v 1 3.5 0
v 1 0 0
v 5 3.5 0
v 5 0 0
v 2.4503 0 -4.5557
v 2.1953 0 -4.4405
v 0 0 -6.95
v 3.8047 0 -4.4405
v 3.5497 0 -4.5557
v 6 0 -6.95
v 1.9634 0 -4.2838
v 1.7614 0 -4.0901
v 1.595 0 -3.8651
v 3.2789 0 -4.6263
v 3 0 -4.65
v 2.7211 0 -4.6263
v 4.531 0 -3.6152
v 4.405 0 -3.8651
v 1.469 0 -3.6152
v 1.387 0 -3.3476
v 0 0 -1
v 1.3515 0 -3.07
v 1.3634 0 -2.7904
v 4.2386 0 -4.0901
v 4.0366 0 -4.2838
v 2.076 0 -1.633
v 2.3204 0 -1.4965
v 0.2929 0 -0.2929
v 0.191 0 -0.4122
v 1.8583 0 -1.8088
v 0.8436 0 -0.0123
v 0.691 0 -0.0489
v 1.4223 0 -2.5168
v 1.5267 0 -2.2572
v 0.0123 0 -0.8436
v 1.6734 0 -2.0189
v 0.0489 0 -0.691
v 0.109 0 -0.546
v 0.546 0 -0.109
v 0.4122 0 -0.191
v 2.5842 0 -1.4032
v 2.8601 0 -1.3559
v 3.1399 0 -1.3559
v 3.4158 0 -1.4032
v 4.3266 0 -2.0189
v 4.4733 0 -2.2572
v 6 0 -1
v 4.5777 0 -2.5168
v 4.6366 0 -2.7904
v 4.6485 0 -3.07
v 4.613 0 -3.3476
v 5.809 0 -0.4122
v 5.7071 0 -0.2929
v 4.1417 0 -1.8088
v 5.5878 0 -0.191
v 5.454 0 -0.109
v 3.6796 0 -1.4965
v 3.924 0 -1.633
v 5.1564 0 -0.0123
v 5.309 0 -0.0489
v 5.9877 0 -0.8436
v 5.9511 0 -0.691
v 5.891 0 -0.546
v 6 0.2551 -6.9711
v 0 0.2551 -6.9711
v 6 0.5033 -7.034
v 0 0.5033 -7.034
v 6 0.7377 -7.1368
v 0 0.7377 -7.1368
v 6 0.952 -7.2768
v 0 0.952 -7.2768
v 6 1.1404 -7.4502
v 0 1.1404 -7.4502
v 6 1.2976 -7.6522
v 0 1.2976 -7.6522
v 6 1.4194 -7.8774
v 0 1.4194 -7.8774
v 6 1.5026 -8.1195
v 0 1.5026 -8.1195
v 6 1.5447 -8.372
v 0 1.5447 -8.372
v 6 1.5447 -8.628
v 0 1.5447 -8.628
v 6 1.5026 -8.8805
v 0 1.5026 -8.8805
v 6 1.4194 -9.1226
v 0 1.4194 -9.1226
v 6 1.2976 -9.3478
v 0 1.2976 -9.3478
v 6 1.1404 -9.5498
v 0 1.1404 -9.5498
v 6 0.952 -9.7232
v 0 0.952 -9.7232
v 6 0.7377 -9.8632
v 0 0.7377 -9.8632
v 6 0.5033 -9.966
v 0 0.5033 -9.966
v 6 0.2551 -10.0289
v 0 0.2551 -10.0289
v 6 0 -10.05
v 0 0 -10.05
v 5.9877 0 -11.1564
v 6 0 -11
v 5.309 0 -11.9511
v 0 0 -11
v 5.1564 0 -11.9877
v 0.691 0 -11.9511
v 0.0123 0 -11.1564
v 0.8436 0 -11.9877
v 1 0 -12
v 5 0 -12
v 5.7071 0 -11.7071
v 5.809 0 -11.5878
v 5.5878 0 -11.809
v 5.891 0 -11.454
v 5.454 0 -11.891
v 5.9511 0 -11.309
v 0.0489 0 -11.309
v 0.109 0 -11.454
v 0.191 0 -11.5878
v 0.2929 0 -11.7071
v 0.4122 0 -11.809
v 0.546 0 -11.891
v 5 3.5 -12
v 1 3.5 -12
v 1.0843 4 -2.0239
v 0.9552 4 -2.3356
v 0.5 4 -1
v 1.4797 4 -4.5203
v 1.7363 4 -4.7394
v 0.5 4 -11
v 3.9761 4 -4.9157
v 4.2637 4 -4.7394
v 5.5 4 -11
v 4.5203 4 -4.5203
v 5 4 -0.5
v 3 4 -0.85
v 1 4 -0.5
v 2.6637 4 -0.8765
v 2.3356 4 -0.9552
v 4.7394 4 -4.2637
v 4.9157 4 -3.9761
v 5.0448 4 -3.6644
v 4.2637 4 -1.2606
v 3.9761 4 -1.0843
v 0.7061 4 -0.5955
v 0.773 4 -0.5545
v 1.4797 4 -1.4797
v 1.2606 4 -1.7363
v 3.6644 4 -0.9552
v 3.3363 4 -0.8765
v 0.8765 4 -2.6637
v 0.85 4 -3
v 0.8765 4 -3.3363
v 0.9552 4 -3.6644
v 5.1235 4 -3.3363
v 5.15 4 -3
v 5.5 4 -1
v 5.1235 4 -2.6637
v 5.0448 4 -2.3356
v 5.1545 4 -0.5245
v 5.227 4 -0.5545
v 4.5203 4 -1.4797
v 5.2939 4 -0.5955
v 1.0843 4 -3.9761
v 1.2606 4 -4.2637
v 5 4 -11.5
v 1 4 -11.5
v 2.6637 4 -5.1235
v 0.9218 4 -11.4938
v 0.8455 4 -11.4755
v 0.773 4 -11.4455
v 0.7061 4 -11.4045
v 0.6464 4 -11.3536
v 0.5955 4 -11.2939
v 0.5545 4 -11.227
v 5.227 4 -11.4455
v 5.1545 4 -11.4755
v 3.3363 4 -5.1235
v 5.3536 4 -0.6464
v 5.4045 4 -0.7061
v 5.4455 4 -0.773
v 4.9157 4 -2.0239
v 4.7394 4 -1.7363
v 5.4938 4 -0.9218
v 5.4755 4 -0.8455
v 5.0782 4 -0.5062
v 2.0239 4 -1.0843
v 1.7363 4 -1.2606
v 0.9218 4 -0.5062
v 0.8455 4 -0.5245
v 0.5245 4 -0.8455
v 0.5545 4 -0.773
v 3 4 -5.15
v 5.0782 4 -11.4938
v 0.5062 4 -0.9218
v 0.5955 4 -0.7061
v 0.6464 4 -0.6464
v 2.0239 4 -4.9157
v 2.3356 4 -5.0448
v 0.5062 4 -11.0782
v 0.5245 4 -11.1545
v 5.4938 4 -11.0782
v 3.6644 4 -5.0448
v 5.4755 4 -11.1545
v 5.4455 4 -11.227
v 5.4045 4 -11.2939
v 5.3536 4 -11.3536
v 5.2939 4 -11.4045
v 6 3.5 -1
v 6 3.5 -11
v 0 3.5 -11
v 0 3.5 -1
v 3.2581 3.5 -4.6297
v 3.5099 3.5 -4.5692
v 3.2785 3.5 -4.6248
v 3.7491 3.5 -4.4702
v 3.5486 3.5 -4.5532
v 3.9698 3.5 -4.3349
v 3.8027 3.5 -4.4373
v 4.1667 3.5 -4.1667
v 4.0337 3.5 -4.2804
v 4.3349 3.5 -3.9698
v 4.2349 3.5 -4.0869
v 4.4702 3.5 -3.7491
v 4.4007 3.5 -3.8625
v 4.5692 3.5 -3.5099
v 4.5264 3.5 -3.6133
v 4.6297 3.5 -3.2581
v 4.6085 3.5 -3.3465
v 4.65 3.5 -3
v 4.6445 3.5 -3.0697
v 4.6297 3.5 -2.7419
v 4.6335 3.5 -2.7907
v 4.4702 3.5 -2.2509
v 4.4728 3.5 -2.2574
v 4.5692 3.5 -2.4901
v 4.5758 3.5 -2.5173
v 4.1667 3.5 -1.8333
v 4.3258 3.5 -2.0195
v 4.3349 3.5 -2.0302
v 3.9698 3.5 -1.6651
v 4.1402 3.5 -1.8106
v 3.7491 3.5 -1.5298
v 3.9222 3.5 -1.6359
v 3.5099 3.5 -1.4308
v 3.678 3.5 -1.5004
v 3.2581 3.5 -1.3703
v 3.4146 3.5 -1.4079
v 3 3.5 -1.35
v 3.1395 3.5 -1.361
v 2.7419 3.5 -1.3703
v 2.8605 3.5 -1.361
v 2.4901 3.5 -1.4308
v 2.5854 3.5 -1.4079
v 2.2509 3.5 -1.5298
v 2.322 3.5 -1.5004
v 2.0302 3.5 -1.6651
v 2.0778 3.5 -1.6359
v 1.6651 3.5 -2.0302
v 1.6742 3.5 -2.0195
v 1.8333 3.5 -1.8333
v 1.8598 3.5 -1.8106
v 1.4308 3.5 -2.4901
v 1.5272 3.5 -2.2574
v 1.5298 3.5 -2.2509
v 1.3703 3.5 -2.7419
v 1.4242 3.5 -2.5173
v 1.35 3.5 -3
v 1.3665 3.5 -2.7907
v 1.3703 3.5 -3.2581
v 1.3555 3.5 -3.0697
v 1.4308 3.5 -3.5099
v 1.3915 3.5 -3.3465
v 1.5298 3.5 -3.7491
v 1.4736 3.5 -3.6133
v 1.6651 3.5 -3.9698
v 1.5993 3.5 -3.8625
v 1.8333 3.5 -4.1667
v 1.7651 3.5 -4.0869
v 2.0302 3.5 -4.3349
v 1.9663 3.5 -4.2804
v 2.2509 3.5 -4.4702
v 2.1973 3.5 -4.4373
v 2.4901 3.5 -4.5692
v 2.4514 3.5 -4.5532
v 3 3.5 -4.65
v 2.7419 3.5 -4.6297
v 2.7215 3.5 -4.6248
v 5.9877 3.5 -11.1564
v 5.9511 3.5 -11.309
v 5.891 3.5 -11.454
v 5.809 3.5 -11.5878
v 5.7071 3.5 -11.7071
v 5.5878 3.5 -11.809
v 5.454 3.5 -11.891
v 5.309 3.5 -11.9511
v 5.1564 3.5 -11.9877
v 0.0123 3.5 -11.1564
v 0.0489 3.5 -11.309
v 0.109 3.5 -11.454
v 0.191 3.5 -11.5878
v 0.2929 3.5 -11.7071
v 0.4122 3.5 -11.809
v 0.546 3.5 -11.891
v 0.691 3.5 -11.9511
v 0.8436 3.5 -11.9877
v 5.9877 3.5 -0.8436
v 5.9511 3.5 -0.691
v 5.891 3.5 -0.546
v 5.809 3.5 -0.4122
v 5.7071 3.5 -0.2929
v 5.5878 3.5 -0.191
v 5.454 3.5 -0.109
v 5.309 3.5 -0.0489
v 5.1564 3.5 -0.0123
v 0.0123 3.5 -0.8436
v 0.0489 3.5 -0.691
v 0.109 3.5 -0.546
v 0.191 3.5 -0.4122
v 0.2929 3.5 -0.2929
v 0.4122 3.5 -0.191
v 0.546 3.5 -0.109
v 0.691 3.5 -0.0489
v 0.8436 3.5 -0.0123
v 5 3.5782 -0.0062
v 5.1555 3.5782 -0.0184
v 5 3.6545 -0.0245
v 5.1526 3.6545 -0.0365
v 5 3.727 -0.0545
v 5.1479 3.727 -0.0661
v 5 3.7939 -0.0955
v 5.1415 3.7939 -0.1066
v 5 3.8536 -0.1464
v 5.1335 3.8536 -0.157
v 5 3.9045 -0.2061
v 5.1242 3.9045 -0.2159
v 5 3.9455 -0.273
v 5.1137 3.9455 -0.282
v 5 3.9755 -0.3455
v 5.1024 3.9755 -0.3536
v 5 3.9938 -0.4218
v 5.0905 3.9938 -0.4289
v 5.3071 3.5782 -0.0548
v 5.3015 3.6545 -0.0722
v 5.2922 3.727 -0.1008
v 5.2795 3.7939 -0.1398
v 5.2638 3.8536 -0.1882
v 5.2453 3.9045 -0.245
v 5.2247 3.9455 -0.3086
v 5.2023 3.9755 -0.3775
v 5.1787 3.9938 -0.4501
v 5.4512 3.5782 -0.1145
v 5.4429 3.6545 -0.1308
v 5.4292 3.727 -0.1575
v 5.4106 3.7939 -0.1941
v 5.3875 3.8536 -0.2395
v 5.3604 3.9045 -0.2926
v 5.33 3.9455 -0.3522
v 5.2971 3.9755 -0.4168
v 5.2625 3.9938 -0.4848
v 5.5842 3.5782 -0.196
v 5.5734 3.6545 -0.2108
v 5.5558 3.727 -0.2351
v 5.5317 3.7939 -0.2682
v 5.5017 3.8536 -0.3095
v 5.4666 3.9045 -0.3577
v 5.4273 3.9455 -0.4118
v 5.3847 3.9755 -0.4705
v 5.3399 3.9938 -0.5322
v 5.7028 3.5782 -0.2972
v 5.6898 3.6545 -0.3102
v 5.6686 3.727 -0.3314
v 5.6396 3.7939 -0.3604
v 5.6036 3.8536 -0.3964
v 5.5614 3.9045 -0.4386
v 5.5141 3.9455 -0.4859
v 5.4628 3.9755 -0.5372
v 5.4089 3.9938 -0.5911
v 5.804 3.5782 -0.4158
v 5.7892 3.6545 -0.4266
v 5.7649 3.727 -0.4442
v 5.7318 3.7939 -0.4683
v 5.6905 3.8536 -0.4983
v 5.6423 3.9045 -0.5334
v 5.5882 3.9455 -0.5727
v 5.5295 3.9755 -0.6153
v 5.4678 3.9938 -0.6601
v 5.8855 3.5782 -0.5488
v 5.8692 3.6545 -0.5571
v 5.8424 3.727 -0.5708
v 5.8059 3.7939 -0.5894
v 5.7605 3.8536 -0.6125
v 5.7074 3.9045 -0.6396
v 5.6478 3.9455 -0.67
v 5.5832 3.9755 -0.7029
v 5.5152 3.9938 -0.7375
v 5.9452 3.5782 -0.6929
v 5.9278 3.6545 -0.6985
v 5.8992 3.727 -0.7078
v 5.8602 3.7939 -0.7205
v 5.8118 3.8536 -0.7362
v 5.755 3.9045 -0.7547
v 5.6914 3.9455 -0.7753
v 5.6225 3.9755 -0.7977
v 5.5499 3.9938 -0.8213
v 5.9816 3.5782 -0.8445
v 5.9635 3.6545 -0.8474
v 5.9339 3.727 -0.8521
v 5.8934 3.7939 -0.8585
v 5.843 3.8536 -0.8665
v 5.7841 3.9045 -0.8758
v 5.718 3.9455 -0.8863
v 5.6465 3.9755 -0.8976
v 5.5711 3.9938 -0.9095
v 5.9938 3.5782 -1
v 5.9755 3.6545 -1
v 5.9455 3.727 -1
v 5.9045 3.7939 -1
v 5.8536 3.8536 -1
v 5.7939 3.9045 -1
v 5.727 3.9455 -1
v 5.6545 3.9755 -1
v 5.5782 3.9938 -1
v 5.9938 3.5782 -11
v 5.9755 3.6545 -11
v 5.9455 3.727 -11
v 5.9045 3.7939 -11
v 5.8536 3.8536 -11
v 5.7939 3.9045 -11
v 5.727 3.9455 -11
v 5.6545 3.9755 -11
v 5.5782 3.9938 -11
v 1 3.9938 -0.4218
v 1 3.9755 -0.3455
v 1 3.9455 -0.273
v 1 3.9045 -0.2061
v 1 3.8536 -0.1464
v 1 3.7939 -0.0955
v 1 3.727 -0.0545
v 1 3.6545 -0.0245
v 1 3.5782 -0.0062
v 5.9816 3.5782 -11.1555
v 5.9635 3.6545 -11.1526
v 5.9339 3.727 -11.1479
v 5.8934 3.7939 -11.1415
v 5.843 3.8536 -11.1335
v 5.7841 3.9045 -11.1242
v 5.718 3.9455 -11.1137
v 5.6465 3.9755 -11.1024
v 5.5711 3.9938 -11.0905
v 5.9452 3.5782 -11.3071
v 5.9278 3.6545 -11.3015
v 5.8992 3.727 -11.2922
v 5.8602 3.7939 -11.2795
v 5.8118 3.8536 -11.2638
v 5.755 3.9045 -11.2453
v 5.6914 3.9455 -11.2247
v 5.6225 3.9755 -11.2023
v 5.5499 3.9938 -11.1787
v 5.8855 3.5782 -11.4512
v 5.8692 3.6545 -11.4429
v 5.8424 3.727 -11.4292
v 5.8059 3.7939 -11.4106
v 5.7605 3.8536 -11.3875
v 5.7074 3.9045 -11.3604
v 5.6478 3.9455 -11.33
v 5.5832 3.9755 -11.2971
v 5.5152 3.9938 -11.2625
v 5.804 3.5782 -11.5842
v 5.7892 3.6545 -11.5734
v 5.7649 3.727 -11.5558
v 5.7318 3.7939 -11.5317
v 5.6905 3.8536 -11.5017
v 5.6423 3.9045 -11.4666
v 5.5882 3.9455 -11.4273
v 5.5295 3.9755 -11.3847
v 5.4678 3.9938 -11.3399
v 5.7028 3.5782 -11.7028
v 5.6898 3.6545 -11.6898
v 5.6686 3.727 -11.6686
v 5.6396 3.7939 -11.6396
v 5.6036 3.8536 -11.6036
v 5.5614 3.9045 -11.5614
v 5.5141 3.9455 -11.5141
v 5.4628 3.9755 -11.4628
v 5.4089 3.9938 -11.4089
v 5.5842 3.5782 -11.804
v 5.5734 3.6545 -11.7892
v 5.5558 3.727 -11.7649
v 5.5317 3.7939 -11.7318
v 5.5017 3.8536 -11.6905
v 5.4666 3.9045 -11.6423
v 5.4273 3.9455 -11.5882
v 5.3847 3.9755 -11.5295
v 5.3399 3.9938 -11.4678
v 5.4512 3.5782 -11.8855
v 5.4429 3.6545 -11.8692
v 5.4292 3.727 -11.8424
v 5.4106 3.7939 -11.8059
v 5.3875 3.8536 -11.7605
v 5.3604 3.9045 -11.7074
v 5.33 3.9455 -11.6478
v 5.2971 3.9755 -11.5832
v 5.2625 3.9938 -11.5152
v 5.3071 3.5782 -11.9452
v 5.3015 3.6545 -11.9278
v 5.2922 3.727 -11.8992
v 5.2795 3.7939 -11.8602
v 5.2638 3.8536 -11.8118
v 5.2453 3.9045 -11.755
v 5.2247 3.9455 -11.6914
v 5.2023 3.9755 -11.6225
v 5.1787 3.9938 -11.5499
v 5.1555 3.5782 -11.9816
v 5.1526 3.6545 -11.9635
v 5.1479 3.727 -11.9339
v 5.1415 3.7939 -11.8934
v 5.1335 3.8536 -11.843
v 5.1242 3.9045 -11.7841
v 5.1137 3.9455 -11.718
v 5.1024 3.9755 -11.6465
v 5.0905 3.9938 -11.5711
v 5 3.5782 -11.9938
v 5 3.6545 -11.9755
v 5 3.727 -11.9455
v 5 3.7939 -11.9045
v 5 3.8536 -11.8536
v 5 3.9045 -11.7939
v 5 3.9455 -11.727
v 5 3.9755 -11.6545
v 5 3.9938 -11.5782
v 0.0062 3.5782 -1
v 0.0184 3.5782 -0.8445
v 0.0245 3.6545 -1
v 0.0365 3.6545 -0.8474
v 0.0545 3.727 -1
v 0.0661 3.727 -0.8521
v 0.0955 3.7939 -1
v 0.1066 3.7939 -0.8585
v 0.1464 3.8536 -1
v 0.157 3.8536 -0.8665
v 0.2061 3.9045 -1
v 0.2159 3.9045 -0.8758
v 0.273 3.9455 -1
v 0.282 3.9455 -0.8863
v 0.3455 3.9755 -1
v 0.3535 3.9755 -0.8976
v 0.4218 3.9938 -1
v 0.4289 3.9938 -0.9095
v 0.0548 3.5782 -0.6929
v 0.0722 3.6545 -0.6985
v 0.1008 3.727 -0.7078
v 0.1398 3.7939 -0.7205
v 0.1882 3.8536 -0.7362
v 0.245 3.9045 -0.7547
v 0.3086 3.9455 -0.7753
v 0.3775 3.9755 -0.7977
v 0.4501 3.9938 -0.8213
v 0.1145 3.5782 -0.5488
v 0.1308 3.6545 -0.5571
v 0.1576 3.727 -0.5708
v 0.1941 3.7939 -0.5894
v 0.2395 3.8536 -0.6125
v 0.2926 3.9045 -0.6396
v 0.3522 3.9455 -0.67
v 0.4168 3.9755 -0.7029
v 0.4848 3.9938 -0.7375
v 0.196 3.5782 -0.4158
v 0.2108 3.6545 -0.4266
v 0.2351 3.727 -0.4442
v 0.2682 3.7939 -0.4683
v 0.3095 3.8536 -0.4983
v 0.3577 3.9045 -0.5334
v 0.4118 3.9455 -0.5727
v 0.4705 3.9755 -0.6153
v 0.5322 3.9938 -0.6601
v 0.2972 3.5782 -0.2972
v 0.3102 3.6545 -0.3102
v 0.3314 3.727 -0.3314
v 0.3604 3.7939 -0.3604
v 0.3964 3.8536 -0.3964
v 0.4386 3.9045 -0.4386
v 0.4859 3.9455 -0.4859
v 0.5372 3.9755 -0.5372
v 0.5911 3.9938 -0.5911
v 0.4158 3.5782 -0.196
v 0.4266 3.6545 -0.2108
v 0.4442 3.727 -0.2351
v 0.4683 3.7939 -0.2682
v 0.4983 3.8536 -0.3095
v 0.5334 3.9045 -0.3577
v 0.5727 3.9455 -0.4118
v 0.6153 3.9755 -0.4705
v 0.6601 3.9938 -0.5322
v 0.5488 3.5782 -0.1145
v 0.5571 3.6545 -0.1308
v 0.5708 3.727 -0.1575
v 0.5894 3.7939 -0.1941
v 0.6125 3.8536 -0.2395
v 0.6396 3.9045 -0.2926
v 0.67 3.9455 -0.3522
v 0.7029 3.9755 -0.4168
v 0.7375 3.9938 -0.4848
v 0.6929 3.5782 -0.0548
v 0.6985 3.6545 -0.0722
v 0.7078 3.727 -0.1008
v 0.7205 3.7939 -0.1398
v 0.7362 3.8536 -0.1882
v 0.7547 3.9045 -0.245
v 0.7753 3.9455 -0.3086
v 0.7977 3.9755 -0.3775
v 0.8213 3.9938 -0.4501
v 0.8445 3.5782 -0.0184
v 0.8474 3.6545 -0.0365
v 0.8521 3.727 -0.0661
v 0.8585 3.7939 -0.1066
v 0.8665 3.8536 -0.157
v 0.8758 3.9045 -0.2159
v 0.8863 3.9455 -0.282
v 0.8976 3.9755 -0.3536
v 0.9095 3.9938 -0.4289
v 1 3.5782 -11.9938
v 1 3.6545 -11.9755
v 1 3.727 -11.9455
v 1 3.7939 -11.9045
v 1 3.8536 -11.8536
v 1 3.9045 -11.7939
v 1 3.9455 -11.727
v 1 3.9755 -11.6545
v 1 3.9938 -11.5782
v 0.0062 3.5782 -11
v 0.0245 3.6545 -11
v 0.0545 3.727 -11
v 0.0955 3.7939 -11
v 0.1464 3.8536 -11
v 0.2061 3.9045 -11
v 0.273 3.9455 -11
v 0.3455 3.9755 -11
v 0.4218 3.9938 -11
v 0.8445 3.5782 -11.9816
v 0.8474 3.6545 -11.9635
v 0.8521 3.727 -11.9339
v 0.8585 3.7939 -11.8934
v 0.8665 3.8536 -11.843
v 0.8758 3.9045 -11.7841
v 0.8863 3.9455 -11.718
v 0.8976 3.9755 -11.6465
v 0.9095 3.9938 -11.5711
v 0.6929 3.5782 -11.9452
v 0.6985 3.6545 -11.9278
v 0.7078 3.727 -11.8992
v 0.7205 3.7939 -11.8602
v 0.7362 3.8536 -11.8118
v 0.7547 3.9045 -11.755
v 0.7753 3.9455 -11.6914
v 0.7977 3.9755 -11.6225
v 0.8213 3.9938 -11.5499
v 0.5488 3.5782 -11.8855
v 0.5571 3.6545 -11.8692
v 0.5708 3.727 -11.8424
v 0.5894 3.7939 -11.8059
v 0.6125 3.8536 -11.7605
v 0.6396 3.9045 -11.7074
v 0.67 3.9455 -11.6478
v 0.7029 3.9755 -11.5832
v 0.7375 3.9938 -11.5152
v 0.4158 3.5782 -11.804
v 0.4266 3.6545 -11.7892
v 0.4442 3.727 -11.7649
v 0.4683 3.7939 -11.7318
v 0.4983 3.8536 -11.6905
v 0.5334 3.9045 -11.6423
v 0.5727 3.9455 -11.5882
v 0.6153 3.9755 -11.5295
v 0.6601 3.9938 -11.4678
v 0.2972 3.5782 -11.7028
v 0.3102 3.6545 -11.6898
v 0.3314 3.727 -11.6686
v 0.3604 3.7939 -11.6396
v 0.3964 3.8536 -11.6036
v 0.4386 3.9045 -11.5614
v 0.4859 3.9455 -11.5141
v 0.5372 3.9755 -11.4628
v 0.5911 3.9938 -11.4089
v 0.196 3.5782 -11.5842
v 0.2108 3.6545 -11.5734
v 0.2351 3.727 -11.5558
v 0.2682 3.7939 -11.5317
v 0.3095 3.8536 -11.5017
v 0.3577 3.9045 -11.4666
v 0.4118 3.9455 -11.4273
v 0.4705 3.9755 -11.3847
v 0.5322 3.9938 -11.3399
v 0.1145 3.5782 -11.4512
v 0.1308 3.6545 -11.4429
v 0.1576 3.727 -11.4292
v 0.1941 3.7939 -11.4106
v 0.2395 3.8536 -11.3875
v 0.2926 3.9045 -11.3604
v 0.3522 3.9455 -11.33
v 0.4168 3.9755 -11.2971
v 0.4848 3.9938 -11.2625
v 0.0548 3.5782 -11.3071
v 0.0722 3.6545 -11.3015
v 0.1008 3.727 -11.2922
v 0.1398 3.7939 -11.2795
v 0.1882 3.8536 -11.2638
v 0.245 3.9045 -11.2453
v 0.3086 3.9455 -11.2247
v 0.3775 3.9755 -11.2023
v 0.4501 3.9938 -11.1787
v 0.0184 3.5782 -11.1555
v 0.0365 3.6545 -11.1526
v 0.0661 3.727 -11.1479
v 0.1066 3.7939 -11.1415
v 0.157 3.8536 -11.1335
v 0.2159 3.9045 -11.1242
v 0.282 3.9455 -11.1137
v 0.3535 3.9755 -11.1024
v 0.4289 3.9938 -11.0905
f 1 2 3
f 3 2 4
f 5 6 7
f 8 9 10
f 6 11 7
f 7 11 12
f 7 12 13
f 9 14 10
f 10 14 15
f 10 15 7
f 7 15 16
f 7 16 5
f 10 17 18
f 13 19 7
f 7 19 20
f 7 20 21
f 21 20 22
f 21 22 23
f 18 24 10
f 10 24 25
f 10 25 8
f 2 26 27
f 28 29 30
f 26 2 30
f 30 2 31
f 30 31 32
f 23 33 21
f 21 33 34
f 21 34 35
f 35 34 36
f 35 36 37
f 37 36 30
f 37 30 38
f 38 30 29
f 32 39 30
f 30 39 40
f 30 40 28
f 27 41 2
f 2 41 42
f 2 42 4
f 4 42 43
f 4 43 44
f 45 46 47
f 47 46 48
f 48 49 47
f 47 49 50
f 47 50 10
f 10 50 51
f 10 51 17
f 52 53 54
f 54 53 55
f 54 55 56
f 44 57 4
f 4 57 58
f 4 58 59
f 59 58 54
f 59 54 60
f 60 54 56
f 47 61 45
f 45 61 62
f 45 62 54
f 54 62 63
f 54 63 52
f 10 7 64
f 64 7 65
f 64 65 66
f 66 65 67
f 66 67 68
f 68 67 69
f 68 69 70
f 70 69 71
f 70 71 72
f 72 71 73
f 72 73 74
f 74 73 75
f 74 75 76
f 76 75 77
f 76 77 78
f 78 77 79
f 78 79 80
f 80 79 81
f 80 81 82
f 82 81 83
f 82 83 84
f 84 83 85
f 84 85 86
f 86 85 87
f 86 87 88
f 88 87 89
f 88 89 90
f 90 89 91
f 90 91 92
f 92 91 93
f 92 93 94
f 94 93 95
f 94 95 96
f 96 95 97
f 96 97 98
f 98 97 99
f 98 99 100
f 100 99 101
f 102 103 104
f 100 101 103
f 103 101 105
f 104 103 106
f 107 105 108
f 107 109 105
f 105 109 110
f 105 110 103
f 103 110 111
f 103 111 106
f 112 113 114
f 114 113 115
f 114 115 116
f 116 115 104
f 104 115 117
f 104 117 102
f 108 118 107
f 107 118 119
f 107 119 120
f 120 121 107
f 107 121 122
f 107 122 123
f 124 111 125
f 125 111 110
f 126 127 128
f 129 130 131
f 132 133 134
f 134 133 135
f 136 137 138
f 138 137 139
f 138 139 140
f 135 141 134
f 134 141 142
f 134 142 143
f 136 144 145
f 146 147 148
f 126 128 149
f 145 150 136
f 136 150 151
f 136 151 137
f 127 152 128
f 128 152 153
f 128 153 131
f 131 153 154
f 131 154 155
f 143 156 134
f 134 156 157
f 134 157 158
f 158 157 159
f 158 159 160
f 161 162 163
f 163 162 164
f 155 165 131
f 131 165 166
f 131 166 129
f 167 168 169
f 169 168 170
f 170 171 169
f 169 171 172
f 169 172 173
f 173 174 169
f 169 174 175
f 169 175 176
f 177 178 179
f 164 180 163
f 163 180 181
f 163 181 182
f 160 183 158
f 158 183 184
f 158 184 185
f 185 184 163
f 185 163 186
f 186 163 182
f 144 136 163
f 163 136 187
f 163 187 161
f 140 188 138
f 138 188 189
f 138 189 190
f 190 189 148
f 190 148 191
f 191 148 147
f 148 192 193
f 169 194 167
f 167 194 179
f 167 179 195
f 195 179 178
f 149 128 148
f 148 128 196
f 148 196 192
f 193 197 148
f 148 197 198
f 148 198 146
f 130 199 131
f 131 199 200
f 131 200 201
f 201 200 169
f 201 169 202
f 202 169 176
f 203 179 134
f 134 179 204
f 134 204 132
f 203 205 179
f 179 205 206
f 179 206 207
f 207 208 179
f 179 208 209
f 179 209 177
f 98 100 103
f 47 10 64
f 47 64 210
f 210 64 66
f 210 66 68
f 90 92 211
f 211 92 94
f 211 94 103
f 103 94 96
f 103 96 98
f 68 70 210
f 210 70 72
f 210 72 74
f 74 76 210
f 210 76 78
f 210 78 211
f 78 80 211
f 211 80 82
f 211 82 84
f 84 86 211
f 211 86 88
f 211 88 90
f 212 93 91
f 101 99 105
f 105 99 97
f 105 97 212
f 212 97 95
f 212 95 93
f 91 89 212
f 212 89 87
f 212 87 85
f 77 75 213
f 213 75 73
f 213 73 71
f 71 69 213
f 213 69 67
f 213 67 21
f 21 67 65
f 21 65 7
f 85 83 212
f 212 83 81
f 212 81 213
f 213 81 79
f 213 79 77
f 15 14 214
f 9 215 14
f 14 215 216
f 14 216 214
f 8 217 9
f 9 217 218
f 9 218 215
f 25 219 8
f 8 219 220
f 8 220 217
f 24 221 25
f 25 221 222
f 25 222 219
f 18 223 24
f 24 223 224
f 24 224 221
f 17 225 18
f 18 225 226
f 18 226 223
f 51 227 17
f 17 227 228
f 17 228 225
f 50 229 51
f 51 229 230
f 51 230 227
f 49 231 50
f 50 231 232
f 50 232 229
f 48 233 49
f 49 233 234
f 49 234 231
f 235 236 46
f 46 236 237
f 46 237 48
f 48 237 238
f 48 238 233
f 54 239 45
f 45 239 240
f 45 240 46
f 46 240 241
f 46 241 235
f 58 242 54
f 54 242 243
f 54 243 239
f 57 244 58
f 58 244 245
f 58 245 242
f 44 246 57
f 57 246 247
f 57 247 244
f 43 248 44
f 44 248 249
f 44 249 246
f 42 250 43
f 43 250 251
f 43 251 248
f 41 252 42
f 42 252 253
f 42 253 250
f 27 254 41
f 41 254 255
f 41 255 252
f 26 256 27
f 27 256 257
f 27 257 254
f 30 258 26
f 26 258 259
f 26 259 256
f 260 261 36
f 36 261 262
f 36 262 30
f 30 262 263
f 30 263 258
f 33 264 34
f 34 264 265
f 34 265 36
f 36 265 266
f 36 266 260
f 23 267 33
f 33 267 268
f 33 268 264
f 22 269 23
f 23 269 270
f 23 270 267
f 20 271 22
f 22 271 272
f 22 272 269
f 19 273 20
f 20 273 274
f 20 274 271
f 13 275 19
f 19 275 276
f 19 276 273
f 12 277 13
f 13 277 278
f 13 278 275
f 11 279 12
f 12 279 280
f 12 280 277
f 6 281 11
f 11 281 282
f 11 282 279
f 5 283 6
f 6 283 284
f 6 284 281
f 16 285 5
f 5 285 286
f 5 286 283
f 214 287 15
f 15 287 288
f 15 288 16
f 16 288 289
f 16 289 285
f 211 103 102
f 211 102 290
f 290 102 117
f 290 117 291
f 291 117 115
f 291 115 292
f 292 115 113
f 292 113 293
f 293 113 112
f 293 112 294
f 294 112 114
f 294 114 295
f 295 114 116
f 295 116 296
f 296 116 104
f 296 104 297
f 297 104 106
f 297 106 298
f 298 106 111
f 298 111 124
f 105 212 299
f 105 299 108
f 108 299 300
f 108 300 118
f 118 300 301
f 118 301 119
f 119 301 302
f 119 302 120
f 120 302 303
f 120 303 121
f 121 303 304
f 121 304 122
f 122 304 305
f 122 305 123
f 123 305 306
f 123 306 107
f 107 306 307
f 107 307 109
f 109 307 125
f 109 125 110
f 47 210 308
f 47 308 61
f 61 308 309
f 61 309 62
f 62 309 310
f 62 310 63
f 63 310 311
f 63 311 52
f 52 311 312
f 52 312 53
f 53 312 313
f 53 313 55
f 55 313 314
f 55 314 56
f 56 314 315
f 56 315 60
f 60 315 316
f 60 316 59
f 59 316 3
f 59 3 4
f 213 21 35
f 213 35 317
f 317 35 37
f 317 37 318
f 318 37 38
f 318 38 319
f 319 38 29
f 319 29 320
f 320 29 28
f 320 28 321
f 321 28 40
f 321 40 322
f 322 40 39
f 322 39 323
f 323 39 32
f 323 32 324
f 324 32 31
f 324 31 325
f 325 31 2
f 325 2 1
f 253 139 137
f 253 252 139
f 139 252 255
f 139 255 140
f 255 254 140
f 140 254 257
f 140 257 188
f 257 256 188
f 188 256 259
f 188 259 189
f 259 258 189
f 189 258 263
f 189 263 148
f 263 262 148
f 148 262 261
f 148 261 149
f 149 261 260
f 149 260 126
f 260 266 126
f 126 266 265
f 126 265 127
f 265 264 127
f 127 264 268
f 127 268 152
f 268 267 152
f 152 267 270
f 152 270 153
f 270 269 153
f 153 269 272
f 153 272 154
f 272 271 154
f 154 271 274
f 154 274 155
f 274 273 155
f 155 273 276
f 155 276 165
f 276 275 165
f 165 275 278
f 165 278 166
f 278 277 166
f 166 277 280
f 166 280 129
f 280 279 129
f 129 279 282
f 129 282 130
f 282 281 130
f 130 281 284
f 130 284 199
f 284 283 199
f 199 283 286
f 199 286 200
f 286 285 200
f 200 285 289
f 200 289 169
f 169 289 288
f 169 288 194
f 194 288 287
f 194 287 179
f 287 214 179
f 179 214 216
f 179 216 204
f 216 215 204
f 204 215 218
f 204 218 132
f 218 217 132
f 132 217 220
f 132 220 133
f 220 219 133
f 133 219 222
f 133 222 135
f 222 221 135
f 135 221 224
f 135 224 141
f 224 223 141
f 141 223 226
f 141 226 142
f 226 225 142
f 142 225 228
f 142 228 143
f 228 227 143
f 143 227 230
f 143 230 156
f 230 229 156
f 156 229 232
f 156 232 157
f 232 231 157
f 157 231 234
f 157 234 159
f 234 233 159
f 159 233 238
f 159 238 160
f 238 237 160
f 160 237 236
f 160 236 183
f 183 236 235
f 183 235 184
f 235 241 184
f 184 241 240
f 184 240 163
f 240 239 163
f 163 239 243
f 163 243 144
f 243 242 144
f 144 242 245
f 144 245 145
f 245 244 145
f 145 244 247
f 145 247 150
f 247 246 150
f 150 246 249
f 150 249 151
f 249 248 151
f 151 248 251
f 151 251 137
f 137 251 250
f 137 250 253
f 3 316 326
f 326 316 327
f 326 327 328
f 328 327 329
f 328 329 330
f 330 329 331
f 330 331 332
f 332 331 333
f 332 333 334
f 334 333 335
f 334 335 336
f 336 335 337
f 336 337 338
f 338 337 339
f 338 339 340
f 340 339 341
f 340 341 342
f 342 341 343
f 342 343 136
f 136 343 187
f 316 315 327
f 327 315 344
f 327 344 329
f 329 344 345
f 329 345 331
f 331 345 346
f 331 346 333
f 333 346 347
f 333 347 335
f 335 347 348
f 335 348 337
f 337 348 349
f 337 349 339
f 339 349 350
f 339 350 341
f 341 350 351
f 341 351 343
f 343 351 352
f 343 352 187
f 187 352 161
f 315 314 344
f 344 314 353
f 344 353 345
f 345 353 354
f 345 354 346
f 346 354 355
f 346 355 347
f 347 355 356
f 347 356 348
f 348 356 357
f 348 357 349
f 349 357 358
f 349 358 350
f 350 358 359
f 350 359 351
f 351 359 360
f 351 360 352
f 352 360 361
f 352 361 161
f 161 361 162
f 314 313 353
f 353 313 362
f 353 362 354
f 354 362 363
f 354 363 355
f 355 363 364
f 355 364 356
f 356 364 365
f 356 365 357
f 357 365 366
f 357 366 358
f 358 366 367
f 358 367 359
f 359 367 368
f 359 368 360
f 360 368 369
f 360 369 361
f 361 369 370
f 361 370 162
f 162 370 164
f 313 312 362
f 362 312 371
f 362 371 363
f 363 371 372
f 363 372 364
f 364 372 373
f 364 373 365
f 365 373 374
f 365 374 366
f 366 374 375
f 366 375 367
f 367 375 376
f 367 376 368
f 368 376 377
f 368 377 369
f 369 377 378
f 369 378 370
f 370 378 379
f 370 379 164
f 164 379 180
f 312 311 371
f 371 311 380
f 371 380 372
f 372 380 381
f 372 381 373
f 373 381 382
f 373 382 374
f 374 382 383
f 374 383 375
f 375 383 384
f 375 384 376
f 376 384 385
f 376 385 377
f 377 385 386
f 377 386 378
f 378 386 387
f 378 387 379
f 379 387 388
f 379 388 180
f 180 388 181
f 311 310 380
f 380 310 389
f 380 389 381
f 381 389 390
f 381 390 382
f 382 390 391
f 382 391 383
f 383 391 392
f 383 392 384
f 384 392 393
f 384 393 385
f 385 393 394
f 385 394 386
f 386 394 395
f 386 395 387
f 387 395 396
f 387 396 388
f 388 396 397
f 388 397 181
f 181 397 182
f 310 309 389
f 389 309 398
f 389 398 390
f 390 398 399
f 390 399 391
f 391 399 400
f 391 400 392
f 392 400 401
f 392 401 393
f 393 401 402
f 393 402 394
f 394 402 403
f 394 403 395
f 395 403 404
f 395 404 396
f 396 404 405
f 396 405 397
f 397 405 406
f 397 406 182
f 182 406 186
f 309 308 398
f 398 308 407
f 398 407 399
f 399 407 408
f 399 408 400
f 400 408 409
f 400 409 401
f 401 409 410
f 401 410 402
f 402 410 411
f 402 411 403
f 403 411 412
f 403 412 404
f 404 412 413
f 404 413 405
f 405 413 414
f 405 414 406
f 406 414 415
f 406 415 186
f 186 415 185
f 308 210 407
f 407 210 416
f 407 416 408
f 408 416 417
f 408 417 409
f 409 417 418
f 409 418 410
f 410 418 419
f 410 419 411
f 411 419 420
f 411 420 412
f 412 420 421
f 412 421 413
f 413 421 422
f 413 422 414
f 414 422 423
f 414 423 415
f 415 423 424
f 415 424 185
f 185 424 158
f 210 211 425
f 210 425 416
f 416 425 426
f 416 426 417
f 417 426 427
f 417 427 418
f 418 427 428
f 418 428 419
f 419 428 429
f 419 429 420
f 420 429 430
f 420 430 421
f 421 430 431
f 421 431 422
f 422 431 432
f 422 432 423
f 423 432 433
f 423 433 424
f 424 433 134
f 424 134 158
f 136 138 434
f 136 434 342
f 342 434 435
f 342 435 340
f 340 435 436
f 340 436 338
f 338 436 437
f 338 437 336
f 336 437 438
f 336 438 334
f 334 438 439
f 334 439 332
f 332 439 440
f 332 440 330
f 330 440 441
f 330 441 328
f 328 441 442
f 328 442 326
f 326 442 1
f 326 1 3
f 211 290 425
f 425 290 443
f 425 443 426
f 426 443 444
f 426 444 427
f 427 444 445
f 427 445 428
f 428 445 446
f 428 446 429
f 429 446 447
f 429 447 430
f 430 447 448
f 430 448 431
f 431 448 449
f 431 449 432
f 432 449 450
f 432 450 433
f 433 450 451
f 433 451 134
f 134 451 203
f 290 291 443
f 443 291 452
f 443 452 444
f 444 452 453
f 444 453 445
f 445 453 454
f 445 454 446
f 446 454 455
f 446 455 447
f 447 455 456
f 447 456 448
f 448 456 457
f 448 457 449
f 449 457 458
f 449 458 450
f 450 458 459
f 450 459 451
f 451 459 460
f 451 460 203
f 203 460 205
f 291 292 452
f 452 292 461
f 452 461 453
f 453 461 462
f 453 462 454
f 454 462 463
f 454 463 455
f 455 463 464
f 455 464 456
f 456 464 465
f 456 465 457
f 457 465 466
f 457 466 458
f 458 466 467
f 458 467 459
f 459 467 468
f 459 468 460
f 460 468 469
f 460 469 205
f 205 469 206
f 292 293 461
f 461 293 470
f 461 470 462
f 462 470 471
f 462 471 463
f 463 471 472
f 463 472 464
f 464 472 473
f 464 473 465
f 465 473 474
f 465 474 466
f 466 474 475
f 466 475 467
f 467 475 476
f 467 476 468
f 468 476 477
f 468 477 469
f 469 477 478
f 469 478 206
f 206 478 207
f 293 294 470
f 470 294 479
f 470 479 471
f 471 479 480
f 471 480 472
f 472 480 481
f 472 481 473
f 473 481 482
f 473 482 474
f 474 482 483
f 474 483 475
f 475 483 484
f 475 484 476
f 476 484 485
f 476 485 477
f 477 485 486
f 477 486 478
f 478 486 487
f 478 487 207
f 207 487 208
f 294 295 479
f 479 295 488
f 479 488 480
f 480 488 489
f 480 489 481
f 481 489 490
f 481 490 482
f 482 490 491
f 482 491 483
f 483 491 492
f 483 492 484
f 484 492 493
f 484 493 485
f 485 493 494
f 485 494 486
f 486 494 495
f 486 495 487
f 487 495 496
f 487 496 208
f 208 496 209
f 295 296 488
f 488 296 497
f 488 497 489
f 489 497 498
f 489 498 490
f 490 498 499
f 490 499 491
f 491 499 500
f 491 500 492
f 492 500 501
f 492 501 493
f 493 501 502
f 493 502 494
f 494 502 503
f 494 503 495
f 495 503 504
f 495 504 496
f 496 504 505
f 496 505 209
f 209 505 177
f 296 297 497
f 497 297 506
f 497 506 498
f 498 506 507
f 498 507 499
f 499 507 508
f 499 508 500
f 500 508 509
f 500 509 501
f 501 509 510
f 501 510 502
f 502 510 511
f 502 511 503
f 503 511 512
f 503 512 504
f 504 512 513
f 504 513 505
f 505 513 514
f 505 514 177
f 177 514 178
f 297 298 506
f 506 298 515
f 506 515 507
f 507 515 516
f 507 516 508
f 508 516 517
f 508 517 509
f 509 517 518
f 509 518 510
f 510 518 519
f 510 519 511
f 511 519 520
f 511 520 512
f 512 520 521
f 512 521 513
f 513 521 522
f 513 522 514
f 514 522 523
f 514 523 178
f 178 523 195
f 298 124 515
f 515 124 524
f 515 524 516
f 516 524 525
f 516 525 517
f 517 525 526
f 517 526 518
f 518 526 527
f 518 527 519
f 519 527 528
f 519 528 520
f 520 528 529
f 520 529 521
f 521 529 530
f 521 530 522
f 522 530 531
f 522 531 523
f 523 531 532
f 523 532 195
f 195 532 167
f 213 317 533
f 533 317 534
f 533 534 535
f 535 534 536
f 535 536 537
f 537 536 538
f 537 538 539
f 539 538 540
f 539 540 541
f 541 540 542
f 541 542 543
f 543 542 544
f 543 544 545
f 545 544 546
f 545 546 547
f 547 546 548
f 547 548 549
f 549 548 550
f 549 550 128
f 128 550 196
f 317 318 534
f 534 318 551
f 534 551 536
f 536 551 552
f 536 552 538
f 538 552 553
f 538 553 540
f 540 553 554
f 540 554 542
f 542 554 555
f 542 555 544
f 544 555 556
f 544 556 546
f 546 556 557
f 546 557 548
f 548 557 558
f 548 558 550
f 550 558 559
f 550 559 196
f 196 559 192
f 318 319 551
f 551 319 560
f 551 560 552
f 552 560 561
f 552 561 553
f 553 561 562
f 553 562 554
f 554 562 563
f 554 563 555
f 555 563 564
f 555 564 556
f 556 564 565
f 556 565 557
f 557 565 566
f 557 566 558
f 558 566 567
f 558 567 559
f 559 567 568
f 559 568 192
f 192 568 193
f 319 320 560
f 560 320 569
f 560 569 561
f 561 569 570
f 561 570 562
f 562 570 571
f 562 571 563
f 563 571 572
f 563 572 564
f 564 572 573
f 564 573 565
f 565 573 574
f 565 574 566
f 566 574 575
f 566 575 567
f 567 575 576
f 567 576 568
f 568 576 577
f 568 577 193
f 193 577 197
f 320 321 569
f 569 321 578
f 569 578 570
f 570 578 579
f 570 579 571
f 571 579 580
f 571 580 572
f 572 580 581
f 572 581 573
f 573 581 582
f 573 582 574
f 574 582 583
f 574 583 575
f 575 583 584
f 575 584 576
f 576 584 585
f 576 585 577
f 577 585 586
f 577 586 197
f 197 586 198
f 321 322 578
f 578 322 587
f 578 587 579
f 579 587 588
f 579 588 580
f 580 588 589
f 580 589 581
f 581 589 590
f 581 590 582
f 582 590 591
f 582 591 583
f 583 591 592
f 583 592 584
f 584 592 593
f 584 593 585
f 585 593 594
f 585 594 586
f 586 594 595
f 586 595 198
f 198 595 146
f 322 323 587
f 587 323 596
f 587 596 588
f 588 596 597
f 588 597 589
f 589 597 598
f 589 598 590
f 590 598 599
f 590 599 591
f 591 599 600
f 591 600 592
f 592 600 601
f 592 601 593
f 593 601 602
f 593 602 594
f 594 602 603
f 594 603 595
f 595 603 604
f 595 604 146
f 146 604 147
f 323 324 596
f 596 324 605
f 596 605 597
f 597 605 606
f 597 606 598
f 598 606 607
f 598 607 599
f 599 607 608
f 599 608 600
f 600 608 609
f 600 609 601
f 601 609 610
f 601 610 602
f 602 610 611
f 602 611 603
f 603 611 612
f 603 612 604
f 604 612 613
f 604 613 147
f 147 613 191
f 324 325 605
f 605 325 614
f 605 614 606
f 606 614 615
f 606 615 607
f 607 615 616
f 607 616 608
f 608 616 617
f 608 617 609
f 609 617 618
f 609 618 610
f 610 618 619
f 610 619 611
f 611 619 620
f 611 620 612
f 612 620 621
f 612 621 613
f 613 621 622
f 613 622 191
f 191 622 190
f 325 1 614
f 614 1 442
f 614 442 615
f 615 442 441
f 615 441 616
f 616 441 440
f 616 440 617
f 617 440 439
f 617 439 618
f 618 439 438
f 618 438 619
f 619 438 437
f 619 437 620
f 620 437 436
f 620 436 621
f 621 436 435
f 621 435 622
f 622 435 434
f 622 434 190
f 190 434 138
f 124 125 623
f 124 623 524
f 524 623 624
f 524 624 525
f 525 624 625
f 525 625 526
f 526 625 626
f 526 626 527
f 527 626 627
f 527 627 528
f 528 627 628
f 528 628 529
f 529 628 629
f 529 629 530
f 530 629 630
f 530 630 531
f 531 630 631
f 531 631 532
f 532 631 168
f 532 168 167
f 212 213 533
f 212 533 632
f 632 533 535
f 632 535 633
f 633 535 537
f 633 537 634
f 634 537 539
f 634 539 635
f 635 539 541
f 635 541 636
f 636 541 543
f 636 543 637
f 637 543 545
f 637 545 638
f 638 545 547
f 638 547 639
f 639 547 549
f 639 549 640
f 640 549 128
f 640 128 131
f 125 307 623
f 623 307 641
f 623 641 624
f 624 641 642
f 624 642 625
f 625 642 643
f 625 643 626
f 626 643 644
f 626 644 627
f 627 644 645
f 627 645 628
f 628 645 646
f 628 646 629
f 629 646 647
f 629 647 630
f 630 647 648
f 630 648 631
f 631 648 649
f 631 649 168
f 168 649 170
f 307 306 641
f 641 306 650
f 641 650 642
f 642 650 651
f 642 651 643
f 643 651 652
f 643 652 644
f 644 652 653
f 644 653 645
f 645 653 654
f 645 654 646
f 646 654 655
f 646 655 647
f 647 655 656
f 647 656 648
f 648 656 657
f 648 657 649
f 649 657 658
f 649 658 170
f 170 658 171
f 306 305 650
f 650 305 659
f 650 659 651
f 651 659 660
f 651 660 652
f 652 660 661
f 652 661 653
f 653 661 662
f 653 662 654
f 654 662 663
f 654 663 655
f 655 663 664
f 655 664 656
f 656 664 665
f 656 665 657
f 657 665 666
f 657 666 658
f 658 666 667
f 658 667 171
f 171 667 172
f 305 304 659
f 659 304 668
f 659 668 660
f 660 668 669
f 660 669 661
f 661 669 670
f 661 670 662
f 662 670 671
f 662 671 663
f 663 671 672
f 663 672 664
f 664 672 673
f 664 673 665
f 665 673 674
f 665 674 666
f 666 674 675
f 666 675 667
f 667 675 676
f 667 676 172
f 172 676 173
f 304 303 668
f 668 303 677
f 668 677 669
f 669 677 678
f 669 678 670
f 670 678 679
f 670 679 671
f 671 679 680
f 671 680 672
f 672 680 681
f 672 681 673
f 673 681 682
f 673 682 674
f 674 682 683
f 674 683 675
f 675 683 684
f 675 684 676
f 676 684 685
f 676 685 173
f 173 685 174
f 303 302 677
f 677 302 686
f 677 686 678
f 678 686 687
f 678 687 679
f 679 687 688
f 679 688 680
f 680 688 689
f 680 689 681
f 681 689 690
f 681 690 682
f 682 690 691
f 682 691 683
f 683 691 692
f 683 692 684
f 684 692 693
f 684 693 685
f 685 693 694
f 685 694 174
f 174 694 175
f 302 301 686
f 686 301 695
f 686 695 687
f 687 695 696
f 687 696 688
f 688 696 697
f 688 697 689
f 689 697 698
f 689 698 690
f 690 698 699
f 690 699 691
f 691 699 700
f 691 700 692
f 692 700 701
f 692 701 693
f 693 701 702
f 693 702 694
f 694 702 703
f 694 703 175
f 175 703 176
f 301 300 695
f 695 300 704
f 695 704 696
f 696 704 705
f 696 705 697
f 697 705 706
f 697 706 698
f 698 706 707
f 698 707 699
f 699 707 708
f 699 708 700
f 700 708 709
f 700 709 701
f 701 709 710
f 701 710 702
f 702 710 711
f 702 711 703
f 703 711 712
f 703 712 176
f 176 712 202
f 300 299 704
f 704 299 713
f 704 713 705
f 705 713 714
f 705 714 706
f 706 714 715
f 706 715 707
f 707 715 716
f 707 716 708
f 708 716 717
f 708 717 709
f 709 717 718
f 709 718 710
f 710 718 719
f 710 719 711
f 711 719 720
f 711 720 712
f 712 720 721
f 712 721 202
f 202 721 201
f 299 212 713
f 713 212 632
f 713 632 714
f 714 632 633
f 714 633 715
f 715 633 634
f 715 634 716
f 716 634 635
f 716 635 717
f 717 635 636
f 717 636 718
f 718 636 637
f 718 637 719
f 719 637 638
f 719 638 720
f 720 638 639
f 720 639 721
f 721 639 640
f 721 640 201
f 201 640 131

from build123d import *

# Parameters (mm, degrees)
EXTRUDE_1_DEPTH     = 6
SKETCH_2_R          = 1.65
CUT_EXTRUDE_1_DEPTH = 6
FILLET_1_R          = 1
CHAMFER_1_SIZE      = 0.5
FILLET_2_R          = 0.5


with BuildPart() as part:
    # 草圖1 → 填料-伸長1 (new body)
    with BuildSketch(Plane(origin=(0, 0, 0), x_dir=(0, 0, -1), z_dir=(1, 0, 0))):
        with BuildLine():
            Line((0, 0), (6.95, 0))
            ThreePointArc((6.95, 0), (8.5, 1.55), (10.05, 0))
            Line((10.05, 0), (12, 0))
            Line((12, 0), (12, 4))
            Line((12, 4), (0, 4))
            Line((0, 4), (0, 0))
        make_face()
    extrude(amount=EXTRUDE_1_DEPTH)

    # 草圖2 → 除料-伸長1 (cut)
    with BuildSketch(Plane(origin=(0, 0, 0), x_dir=(-1, 0, 0), z_dir=(0, -1, 0))):
        with Locations(Location((-3, 3, 0), (0, 0, 90))):
            Circle(SKETCH_2_R)
    extrude(amount=-CUT_EXTRUDE_1_DEPTH, mode=Mode.SUBTRACT)

    # 圓角1
    fillet_1_edges = [part.edges().sort_by_distance(p)[0] for p in [
        (6, 2, -12),
        (6, 2, 0),
        (0, 2, -12),
        (0, 2, 0),
    ]]
    fillet(fillet_1_edges, radius=FILLET_1_R)

    # 導角1
    chamfer_1_edges = [part.edges().sort_by_distance(p)[0] for p in [
        (3, 4, -1.35),
    ]]
    chamfer(chamfer_1_edges, length=CHAMFER_1_SIZE)

    # 圓角2
    fillet_2_edges = [part.edges().sort_by_distance(p)[0] for p in [
        (6, 4, -6),
        (0, 4, -6),
        (3, 4, 0),
        (3, 4, -12),
        (0.292893219, 4, -0.292893219),
        (5.707106781, 4, -0.292893219),
        (0.292893219, 4, -11.707106781),
        (5.707106781, 4, -11.707106781),
    ]]
    fillet(fillet_2_edges, radius=FILLET_2_R)


solid = part.part
